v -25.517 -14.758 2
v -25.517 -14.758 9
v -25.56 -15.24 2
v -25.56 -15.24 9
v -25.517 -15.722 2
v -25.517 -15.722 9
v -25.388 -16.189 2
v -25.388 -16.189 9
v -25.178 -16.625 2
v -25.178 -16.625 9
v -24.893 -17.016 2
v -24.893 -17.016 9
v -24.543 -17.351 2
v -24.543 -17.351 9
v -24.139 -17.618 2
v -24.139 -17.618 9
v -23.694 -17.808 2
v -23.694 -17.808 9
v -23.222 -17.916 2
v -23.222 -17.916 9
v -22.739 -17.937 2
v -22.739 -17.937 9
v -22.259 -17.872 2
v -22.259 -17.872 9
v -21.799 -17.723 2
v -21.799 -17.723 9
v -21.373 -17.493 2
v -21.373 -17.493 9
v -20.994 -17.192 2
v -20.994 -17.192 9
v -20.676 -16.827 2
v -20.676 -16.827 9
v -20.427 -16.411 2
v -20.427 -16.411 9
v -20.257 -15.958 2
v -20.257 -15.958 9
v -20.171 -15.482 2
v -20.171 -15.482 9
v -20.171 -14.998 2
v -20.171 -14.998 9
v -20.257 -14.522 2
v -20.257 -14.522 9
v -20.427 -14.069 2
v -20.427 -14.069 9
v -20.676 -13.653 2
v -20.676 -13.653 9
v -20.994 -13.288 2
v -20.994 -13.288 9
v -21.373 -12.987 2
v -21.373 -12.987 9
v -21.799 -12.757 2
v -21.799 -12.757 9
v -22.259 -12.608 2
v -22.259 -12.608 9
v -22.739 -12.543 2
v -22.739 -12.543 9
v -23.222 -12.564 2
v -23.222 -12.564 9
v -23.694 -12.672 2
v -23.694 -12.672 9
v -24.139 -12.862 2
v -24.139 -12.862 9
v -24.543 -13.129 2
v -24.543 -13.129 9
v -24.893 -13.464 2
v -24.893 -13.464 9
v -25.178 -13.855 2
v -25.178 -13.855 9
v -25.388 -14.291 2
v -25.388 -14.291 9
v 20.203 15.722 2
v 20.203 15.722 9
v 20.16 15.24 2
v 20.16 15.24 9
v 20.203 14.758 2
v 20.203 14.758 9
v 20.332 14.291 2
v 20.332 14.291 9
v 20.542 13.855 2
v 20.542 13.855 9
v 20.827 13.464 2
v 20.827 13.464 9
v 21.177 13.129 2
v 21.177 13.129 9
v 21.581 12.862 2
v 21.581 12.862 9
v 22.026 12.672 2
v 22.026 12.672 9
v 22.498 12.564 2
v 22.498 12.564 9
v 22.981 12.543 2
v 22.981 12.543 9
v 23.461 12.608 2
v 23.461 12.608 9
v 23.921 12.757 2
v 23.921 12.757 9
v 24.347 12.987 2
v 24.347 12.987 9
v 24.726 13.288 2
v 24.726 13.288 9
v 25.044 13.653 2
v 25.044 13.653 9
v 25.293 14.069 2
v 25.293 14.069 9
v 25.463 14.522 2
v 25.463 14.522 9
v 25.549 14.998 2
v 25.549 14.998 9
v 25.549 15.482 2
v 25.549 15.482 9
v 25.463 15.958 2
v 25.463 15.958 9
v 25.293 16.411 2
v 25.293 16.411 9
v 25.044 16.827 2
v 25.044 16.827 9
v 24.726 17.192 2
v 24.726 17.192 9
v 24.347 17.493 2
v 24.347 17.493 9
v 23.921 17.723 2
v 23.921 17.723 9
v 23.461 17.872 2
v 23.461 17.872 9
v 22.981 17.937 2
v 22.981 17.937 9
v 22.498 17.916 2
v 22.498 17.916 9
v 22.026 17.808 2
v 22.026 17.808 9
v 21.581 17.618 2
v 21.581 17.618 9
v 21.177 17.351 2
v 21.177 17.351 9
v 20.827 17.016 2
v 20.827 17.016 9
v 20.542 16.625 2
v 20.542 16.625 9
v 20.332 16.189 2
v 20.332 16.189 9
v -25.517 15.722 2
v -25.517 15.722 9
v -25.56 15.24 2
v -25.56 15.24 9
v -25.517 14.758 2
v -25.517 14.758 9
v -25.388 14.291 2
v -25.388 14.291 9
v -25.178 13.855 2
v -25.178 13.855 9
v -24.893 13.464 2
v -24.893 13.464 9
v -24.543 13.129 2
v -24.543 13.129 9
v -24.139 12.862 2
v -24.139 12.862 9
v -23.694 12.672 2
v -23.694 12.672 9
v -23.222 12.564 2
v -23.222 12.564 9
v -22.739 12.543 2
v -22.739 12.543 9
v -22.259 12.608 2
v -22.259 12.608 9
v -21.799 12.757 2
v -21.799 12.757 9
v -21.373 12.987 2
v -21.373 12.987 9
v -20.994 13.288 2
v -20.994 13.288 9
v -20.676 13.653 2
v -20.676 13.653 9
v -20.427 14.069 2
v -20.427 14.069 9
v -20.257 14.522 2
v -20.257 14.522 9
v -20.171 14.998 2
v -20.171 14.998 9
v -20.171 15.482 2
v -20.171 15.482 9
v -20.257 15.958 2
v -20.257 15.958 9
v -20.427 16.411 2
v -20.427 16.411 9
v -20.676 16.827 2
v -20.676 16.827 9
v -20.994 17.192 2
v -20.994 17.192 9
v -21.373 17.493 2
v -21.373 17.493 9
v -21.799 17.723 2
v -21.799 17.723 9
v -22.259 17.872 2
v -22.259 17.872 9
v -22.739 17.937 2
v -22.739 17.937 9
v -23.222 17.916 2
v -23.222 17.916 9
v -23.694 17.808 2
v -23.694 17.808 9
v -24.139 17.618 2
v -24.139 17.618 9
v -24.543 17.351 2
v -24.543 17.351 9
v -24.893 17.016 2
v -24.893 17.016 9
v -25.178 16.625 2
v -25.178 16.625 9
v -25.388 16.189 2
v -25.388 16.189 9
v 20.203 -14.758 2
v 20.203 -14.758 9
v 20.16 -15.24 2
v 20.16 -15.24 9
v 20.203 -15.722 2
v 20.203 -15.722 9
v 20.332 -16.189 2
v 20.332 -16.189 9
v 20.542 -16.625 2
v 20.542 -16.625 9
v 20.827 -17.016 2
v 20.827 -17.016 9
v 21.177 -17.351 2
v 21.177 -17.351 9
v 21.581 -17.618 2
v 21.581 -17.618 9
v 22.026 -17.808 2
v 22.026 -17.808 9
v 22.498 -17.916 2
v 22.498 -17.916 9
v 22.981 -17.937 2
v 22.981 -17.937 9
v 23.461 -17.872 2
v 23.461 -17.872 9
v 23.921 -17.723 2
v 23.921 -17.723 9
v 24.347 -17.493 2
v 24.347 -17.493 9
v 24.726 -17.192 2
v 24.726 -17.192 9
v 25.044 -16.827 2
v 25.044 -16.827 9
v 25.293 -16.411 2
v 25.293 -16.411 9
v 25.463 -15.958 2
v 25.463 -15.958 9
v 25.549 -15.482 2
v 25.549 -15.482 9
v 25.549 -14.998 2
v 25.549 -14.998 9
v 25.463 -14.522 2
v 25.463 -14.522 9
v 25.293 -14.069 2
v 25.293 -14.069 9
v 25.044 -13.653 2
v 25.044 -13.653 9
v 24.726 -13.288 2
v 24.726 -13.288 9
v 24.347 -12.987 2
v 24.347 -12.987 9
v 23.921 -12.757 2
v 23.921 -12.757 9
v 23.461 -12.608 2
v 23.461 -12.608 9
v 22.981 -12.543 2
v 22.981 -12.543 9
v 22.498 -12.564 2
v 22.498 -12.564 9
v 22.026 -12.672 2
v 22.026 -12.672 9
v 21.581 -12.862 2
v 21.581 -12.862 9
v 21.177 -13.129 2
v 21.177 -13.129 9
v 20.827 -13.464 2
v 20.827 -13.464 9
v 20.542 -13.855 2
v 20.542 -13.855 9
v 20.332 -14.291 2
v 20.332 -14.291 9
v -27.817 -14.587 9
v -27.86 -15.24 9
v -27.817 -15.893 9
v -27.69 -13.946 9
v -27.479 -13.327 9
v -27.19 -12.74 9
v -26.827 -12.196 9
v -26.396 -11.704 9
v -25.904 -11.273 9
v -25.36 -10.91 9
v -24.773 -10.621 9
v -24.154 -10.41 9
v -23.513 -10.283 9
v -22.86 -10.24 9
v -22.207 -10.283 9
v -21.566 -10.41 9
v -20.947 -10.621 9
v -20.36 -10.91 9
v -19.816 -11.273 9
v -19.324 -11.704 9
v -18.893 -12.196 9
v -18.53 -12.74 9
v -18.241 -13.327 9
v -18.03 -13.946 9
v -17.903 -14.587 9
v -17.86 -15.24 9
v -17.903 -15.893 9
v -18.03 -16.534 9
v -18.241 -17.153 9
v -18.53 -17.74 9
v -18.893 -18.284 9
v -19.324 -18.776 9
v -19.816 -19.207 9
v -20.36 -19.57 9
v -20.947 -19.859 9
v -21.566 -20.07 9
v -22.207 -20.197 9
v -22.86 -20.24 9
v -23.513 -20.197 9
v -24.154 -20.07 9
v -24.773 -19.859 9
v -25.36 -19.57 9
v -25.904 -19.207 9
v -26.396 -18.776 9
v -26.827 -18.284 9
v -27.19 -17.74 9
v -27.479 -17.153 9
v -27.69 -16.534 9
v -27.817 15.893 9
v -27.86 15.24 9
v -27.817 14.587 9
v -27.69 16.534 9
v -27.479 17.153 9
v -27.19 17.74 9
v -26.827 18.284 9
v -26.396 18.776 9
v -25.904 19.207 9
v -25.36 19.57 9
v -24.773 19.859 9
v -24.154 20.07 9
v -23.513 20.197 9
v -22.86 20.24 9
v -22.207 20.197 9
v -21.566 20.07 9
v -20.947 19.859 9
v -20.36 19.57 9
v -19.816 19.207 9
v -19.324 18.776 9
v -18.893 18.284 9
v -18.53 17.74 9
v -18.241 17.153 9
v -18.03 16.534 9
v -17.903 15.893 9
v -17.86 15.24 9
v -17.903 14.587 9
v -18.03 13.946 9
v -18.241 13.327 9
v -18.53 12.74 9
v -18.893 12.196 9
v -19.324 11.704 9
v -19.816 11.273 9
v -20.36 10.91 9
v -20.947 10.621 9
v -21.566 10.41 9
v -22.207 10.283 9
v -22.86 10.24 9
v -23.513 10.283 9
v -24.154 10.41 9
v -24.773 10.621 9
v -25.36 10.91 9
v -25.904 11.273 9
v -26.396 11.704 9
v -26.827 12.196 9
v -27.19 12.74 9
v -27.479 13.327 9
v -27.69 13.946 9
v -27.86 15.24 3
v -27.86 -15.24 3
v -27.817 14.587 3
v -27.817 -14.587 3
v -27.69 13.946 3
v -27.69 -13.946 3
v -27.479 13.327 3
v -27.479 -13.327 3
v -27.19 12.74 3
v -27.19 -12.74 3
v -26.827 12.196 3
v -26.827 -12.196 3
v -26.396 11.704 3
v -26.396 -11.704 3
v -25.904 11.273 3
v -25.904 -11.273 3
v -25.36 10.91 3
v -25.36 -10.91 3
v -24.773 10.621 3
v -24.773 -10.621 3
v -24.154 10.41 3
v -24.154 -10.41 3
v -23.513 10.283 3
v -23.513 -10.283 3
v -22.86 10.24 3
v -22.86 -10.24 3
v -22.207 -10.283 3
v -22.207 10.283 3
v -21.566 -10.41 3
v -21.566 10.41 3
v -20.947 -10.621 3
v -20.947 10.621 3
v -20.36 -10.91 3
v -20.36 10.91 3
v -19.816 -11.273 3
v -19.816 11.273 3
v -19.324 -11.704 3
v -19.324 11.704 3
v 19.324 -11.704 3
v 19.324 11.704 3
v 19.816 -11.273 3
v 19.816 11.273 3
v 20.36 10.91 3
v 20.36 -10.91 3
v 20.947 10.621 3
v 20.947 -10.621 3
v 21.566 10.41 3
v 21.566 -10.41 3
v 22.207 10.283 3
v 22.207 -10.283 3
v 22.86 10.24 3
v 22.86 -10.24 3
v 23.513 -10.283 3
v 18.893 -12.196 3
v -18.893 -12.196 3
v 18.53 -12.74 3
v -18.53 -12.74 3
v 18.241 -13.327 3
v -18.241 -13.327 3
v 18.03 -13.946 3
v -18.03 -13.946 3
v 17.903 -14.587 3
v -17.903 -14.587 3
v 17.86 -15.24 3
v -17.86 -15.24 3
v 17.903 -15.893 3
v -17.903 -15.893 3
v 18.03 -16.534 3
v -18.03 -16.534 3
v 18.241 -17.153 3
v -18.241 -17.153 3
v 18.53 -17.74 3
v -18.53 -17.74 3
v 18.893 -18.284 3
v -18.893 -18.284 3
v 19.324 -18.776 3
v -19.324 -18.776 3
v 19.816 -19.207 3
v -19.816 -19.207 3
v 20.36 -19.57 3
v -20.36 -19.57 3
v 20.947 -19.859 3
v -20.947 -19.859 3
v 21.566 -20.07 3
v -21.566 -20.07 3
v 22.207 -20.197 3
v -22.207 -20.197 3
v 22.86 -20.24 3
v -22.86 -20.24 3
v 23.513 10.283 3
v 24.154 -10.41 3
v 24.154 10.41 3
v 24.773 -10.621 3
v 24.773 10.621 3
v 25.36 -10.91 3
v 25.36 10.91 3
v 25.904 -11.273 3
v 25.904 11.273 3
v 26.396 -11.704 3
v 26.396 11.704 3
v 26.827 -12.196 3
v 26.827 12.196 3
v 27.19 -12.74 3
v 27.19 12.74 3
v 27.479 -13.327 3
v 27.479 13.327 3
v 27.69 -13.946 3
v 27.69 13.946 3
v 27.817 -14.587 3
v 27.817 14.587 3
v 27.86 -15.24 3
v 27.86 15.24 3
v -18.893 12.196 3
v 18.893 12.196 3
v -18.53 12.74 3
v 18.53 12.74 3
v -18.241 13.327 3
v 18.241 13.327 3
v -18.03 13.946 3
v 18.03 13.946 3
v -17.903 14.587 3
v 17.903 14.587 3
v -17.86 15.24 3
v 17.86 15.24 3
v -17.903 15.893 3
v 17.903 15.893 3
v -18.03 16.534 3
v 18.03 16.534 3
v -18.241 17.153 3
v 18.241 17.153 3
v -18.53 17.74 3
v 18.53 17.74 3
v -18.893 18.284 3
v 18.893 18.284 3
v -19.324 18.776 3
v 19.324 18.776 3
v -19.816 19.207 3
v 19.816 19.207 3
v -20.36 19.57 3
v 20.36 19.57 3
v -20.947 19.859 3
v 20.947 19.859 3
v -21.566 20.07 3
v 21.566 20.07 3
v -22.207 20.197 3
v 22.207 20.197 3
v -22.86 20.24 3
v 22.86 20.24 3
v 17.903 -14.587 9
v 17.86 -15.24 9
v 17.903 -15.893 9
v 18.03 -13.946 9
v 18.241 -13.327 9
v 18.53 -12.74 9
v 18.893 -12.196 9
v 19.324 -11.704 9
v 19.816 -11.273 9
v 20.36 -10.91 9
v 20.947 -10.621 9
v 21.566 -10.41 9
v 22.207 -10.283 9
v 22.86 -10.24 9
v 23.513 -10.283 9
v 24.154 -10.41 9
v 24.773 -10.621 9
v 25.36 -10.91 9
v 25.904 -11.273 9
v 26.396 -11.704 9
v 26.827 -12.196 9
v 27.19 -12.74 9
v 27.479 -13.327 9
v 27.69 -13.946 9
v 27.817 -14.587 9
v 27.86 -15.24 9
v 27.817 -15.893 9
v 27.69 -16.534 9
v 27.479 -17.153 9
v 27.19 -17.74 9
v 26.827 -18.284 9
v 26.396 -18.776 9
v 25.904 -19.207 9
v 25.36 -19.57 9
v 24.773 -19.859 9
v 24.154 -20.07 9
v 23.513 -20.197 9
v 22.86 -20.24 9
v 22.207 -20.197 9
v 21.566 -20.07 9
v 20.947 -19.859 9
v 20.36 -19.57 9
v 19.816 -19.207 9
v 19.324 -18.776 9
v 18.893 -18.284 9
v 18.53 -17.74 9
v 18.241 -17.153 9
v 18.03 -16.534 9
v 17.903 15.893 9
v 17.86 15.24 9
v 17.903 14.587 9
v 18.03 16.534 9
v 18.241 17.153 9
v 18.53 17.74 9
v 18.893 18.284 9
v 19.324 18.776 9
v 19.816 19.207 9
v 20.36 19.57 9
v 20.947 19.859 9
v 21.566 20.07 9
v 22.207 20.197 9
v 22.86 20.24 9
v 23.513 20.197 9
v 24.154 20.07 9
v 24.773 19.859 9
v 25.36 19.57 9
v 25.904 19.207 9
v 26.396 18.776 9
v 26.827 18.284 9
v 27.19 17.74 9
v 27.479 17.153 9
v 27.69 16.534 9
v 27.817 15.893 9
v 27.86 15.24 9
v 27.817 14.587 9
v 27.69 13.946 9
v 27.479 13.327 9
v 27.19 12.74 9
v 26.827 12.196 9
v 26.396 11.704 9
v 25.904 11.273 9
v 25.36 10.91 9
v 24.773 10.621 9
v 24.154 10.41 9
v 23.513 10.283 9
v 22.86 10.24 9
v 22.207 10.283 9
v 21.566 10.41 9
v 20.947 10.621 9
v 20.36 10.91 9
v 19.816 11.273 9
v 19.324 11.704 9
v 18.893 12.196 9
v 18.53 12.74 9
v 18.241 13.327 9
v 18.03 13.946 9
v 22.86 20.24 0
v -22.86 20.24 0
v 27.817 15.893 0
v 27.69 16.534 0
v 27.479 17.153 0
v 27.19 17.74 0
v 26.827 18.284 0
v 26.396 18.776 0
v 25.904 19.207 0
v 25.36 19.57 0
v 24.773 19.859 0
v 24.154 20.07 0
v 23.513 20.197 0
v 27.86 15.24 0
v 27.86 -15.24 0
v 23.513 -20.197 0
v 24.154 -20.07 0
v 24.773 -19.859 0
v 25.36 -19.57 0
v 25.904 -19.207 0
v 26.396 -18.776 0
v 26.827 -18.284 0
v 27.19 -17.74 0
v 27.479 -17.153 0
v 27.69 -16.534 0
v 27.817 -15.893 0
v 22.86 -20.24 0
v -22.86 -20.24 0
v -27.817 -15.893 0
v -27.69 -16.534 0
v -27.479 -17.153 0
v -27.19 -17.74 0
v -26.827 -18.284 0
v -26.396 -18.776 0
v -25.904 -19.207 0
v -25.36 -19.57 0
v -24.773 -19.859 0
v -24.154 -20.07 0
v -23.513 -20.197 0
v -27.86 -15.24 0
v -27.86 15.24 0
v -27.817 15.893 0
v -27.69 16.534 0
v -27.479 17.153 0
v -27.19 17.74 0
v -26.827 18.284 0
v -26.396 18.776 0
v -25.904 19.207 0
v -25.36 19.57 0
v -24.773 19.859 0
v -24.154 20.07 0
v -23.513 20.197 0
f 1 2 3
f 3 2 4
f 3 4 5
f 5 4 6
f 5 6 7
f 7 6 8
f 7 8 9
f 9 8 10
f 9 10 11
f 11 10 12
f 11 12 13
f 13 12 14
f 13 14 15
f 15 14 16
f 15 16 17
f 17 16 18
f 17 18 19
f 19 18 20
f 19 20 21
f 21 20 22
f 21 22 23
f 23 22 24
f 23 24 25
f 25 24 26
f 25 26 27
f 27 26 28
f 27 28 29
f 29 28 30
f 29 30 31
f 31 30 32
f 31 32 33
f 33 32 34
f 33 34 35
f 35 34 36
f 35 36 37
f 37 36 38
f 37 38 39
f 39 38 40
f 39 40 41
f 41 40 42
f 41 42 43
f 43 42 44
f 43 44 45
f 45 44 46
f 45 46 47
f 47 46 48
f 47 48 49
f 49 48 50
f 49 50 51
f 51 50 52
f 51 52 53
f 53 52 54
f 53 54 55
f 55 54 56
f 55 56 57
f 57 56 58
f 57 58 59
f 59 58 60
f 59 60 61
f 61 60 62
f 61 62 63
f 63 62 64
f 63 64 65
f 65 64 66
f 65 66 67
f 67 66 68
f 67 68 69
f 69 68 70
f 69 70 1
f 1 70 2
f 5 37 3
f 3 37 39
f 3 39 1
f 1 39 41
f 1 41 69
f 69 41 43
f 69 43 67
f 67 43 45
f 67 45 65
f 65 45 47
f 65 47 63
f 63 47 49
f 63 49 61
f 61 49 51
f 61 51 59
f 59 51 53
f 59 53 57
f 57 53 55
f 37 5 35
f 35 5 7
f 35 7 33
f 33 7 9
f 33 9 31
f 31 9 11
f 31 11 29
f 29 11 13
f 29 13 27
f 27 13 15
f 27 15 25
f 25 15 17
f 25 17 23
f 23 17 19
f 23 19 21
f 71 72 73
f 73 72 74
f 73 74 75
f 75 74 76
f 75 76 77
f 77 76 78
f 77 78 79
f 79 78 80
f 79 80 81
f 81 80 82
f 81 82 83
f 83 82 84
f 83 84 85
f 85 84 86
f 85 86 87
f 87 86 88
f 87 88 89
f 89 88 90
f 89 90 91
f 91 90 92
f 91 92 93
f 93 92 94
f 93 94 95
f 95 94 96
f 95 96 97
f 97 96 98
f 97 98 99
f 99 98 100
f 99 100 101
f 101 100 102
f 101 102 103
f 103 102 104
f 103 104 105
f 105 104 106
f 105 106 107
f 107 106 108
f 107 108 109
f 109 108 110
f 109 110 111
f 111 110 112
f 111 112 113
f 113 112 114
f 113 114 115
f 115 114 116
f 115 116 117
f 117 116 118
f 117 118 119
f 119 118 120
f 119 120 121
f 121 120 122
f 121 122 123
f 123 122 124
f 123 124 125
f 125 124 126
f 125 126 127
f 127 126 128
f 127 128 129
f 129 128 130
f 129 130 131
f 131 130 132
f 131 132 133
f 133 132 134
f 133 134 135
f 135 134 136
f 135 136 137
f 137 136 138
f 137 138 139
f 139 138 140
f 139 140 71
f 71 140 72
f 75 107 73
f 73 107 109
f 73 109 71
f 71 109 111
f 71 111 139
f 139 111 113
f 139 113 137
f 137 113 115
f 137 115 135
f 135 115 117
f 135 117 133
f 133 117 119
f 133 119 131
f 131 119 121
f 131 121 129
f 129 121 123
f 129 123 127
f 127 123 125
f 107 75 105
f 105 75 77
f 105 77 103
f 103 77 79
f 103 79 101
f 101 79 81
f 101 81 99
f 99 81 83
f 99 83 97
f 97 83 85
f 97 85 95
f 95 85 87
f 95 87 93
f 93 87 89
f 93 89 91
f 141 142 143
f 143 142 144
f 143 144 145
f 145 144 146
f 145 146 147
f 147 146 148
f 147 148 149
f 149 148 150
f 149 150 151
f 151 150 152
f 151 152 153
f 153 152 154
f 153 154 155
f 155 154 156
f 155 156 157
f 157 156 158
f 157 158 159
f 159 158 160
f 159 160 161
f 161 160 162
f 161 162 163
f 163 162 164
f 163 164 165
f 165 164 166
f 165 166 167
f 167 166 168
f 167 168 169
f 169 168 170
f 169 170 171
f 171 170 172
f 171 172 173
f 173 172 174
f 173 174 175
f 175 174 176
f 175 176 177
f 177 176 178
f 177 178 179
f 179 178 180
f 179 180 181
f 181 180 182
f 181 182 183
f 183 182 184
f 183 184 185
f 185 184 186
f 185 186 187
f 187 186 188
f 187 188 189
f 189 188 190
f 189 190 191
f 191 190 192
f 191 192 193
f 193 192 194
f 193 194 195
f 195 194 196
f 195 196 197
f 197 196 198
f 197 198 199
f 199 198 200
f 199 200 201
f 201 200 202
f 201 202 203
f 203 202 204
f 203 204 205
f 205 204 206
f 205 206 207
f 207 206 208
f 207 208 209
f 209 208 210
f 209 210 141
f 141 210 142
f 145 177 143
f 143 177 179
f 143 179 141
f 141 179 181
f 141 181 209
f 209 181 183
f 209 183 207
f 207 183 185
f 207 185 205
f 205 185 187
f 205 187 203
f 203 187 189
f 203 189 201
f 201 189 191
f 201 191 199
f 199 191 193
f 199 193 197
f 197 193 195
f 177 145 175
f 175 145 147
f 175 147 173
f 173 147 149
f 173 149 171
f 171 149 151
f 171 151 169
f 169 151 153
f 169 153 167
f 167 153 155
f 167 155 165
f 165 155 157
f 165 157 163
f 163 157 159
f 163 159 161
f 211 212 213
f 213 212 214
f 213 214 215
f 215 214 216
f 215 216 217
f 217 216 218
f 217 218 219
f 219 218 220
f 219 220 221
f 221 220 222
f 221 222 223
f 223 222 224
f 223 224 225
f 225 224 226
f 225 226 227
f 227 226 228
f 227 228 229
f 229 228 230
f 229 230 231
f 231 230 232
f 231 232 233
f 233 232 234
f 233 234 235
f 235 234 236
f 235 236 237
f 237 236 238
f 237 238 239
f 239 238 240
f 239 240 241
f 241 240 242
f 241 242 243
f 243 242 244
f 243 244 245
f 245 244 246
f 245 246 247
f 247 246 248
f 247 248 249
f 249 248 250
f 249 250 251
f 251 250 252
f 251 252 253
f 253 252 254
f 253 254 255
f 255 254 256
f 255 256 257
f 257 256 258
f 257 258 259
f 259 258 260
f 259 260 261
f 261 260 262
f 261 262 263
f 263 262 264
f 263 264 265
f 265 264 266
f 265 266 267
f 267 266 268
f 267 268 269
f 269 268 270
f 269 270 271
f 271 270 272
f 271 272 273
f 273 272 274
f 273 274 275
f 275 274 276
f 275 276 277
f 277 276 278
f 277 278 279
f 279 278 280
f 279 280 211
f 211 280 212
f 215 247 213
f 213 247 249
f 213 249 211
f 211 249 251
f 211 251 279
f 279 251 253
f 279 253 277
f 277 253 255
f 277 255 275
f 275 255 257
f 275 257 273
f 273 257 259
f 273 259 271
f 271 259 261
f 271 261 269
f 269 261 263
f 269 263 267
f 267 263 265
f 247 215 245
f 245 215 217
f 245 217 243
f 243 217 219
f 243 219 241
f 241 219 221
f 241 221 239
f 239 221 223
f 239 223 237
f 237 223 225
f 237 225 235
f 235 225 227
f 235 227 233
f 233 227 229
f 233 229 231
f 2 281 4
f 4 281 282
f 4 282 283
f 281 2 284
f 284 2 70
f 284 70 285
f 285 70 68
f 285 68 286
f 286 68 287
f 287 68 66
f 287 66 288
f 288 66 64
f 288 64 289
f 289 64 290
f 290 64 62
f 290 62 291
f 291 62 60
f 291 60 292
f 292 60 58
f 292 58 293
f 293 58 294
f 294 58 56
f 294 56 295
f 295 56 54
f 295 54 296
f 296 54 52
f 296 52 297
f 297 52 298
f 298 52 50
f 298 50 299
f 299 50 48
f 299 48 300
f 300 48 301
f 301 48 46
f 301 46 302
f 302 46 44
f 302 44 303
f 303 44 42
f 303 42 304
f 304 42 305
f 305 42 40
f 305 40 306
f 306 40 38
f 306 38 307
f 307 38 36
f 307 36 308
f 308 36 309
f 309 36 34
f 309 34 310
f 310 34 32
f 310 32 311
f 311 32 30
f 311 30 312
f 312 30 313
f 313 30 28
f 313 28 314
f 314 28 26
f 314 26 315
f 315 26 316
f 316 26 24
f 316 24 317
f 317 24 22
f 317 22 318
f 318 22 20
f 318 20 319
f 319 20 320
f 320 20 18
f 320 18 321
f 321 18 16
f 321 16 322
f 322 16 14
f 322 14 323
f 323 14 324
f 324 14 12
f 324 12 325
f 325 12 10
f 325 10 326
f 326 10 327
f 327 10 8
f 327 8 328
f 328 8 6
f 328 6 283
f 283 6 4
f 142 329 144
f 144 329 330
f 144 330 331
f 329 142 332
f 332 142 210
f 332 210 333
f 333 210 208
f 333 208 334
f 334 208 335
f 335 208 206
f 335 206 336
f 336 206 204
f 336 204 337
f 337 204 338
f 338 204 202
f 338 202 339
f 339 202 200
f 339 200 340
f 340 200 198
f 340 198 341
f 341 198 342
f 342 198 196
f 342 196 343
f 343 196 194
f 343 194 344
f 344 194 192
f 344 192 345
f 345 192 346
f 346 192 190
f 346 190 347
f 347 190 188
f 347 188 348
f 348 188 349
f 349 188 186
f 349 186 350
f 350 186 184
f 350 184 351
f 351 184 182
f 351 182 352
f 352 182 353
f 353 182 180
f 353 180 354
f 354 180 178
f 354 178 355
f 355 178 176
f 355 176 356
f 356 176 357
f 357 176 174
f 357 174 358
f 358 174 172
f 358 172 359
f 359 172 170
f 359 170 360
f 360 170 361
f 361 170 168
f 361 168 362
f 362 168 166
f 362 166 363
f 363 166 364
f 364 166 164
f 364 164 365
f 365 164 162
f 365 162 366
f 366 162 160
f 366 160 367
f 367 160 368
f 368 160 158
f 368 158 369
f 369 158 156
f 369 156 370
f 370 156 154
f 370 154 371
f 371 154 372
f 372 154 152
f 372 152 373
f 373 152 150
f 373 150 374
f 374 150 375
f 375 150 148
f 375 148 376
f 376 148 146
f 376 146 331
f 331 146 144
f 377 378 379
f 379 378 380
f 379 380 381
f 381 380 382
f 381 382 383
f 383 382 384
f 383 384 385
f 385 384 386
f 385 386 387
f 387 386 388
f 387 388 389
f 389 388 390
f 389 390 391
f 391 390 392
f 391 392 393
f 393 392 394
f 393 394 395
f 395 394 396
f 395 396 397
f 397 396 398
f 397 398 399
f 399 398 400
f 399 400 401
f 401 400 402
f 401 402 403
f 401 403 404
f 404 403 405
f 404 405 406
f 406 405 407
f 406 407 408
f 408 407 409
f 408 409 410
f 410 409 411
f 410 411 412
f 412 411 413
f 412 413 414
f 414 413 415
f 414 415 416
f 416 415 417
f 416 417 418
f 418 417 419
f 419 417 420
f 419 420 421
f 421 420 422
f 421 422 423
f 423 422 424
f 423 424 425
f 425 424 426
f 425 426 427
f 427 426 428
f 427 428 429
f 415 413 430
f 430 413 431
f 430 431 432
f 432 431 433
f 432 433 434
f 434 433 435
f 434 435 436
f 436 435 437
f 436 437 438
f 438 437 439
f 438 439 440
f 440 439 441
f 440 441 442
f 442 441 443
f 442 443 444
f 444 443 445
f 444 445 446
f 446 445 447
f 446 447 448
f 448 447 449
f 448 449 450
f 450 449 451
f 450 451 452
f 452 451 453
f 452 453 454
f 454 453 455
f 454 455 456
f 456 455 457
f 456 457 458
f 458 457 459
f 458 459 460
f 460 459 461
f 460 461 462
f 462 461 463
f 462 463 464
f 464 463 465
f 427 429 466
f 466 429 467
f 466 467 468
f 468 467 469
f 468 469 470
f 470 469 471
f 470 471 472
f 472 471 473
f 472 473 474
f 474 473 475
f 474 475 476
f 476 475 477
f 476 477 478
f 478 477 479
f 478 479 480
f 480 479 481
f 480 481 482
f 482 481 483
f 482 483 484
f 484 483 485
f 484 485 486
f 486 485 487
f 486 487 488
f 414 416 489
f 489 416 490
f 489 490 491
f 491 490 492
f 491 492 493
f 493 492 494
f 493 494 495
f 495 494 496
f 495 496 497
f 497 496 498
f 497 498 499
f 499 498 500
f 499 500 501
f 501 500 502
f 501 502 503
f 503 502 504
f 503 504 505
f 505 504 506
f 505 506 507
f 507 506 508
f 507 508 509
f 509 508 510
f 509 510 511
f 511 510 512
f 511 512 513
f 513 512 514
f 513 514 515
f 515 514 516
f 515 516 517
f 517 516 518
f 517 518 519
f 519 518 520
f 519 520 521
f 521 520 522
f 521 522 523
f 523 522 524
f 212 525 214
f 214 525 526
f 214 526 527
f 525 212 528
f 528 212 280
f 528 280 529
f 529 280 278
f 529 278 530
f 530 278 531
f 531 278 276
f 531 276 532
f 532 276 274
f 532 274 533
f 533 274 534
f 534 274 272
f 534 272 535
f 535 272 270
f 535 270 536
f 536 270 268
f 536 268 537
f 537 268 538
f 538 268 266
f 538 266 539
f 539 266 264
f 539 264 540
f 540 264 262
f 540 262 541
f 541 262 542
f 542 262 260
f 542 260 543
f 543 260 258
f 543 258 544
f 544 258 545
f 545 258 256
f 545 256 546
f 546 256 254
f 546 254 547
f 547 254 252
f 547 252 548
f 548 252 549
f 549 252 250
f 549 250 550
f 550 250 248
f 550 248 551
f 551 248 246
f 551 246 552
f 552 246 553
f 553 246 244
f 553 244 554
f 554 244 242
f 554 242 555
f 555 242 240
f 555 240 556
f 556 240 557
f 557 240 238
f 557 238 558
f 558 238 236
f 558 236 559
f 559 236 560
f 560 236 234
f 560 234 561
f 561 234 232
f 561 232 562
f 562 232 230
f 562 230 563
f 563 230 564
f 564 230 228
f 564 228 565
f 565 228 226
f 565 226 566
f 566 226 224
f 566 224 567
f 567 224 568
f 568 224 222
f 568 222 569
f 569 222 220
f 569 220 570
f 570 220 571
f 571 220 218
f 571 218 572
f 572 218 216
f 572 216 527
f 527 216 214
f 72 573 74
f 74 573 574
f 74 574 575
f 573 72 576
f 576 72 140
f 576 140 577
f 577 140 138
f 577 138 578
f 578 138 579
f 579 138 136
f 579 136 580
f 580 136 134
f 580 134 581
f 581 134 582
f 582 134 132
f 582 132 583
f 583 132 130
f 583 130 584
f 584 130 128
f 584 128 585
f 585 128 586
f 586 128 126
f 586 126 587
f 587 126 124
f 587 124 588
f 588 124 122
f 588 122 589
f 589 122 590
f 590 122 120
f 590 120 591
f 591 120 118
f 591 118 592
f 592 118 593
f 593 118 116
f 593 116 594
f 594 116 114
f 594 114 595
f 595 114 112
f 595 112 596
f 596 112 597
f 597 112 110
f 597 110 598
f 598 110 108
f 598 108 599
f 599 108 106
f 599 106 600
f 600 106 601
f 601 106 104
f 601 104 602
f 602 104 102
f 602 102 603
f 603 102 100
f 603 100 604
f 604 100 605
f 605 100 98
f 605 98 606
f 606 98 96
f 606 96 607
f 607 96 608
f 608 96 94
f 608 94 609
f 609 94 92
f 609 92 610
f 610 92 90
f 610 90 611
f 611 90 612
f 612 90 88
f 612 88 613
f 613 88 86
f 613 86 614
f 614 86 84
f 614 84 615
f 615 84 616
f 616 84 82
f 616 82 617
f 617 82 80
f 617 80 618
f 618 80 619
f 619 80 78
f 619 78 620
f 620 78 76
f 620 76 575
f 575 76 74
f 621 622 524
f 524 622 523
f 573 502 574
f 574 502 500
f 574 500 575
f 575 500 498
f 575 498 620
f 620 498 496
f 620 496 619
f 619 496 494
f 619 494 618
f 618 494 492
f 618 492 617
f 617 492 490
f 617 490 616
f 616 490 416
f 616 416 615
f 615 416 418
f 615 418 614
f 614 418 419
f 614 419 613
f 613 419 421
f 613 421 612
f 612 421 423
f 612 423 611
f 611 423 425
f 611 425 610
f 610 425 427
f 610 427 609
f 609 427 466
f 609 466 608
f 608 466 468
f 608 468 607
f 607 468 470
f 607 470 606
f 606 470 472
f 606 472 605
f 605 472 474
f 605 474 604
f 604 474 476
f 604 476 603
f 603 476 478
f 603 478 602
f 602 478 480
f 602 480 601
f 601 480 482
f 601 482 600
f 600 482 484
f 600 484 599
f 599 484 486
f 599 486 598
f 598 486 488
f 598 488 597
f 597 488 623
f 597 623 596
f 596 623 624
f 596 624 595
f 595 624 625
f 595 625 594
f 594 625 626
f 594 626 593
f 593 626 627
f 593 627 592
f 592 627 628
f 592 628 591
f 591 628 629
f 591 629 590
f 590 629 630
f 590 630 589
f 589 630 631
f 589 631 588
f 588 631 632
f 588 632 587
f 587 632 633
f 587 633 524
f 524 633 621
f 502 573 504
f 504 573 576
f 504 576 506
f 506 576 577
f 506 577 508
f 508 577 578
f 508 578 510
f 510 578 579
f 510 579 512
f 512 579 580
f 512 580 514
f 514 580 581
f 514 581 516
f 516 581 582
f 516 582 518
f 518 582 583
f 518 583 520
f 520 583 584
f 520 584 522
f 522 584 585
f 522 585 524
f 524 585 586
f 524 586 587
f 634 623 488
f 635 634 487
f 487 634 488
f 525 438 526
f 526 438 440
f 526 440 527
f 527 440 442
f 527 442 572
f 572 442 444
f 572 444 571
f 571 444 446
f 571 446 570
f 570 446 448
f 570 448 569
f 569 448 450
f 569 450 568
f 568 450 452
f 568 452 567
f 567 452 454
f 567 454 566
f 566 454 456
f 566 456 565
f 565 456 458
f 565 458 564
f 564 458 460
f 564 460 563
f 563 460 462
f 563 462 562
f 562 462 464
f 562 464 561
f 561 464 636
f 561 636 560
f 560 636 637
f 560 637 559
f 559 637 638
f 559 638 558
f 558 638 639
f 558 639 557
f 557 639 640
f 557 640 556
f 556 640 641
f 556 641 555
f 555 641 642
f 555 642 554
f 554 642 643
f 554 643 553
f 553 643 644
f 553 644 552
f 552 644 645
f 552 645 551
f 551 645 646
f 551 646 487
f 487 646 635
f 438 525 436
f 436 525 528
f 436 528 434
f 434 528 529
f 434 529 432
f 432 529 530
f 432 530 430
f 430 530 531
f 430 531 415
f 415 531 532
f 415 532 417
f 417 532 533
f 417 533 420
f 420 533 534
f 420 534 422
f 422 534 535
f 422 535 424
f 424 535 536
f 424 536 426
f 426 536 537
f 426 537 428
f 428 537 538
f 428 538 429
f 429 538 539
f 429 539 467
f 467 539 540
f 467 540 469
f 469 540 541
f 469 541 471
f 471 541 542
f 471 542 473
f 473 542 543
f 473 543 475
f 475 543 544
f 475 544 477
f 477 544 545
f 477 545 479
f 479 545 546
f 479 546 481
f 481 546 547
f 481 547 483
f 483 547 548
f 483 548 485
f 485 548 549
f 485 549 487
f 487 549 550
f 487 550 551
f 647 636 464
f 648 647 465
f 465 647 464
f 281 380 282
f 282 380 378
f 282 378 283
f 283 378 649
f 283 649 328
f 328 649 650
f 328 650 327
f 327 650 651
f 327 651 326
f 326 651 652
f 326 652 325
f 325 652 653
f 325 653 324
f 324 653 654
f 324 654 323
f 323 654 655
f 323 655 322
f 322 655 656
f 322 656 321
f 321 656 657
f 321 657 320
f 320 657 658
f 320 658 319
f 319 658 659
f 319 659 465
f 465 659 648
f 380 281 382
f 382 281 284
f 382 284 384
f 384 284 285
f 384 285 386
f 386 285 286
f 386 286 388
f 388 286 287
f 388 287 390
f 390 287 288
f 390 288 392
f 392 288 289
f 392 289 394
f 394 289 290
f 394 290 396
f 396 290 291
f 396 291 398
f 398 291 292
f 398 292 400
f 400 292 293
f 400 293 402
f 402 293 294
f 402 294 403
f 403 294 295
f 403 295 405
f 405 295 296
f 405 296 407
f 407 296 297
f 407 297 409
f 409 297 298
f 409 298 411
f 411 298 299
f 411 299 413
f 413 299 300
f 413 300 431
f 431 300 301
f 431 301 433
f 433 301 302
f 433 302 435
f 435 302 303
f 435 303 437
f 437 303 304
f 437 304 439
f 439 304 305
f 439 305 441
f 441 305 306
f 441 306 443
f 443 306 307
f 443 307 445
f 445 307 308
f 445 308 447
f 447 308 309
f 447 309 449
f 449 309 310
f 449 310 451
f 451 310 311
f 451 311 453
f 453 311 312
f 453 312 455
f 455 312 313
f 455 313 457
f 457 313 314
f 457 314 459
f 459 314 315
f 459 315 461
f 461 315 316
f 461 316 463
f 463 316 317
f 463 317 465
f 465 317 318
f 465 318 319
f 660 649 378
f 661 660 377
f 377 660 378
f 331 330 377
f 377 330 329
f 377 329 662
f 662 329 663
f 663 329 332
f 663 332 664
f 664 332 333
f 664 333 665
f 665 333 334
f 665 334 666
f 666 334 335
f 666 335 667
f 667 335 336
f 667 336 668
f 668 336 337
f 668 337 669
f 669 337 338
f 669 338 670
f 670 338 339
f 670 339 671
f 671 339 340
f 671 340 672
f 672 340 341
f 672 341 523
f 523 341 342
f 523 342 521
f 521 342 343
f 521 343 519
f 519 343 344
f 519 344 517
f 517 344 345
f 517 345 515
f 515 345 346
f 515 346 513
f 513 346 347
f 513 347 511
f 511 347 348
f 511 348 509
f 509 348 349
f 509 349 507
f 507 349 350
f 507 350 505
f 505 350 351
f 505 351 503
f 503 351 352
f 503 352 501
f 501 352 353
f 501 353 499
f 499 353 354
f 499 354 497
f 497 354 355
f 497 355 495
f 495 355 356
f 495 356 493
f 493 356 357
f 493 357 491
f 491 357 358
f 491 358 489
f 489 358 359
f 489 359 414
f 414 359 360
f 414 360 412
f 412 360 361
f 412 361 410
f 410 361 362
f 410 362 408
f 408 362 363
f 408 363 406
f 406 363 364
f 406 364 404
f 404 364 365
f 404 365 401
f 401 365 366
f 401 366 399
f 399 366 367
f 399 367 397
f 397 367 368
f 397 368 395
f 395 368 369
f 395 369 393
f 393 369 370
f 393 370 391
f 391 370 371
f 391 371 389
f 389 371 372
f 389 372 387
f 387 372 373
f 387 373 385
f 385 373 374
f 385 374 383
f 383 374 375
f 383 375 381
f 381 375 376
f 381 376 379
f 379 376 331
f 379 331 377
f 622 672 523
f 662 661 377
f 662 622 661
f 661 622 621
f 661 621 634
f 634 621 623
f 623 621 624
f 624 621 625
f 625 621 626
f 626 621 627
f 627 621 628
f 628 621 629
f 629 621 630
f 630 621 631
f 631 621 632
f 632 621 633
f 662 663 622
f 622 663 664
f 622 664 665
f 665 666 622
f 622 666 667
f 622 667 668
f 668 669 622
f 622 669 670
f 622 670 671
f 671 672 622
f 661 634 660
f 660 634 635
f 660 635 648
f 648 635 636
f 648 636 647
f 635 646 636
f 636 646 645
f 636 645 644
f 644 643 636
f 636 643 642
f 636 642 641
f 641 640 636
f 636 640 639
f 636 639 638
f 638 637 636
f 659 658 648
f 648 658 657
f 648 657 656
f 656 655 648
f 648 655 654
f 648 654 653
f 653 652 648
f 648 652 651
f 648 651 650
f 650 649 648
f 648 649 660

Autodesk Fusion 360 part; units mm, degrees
sketch "Sketch1" plane through (0, 0, 0) normal (0, 0, 1) x (1, 0, 0)
  line L0 (22.86, -15.24) -> (-22.86, -15.24) construction
  line L1 (-22.86, -15.24) -> (-22.86, 15.24) construction
  line L2 (-22.86, 15.24) -> (22.86, 15.24) construction
  line L3 (22.86, 15.24) -> (22.86, -15.24) construction
  line L4 (22.86, -15.24) -> (-22.86, 15.24) construction
  line L5 (-22.86, -15.24) -> (22.86, 15.24) construction
  circle A0 centre (22.86, 15.24) radius 5
  circle A1 centre (22.86, -15.24) radius 5
  circle A2 centre (-22.86, -15.24) radius 5
  circle A3 centre (-22.86, 15.24) radius 5
  line L6 (-22.86, 20.24) -> (22.86, 20.24)
  line L7 (-27.86, 15.24) -> (-27.86, -15.24)
  line L8 (27.86, 15.24) -> (27.86, -15.24)
  line L9 (-22.86, -20.24) -> (22.86, -20.24)
  circle A4 centre (22.86, 15.24) radius 2.7
  circle A5 centre (-22.86, 15.24) radius 2.7
  circle A6 centre (-22.86, -15.24) radius 2.7
  circle A7 centre (22.86, -15.24) radius 2.7
  dimension "d1" = 45.72
  dimension "d2" = 30.48
  dimension "d3" = 10
  dimension "d4" = 10
  dimension "d5" = 10
  dimension "d6" = 10
  dimension "d12" = 5.4
  dimension "d13" = 5.4
  dimension "d14" = 5.4
  dimension "d15" = 5.4
extrude "Extrude1" add sketch "Sketch1" along normal blind 3 contours A0 | A0 A1 A2 A3 L6 L7 L8 L9 | A1 | A3 | A2 | A4 | A5 | A6 | A7
extrude "Extrude2" add sketch "Sketch1" along normal blind 6 from surface at 3 contours A0 | A1 | A3 | A2 | A4 | A5 | A6 | A7
extrude "Extrude3" cut sketch "Sketch1" against normal blind 7 from surface at 9 contours A4 | A5 | A6 | A7
equation "d4 = d3"
equation "d5 = d3"
equation "d6 = d3"
equation "d13 = d12"
equation "d14 = d12"
equation "d15 = d12"
